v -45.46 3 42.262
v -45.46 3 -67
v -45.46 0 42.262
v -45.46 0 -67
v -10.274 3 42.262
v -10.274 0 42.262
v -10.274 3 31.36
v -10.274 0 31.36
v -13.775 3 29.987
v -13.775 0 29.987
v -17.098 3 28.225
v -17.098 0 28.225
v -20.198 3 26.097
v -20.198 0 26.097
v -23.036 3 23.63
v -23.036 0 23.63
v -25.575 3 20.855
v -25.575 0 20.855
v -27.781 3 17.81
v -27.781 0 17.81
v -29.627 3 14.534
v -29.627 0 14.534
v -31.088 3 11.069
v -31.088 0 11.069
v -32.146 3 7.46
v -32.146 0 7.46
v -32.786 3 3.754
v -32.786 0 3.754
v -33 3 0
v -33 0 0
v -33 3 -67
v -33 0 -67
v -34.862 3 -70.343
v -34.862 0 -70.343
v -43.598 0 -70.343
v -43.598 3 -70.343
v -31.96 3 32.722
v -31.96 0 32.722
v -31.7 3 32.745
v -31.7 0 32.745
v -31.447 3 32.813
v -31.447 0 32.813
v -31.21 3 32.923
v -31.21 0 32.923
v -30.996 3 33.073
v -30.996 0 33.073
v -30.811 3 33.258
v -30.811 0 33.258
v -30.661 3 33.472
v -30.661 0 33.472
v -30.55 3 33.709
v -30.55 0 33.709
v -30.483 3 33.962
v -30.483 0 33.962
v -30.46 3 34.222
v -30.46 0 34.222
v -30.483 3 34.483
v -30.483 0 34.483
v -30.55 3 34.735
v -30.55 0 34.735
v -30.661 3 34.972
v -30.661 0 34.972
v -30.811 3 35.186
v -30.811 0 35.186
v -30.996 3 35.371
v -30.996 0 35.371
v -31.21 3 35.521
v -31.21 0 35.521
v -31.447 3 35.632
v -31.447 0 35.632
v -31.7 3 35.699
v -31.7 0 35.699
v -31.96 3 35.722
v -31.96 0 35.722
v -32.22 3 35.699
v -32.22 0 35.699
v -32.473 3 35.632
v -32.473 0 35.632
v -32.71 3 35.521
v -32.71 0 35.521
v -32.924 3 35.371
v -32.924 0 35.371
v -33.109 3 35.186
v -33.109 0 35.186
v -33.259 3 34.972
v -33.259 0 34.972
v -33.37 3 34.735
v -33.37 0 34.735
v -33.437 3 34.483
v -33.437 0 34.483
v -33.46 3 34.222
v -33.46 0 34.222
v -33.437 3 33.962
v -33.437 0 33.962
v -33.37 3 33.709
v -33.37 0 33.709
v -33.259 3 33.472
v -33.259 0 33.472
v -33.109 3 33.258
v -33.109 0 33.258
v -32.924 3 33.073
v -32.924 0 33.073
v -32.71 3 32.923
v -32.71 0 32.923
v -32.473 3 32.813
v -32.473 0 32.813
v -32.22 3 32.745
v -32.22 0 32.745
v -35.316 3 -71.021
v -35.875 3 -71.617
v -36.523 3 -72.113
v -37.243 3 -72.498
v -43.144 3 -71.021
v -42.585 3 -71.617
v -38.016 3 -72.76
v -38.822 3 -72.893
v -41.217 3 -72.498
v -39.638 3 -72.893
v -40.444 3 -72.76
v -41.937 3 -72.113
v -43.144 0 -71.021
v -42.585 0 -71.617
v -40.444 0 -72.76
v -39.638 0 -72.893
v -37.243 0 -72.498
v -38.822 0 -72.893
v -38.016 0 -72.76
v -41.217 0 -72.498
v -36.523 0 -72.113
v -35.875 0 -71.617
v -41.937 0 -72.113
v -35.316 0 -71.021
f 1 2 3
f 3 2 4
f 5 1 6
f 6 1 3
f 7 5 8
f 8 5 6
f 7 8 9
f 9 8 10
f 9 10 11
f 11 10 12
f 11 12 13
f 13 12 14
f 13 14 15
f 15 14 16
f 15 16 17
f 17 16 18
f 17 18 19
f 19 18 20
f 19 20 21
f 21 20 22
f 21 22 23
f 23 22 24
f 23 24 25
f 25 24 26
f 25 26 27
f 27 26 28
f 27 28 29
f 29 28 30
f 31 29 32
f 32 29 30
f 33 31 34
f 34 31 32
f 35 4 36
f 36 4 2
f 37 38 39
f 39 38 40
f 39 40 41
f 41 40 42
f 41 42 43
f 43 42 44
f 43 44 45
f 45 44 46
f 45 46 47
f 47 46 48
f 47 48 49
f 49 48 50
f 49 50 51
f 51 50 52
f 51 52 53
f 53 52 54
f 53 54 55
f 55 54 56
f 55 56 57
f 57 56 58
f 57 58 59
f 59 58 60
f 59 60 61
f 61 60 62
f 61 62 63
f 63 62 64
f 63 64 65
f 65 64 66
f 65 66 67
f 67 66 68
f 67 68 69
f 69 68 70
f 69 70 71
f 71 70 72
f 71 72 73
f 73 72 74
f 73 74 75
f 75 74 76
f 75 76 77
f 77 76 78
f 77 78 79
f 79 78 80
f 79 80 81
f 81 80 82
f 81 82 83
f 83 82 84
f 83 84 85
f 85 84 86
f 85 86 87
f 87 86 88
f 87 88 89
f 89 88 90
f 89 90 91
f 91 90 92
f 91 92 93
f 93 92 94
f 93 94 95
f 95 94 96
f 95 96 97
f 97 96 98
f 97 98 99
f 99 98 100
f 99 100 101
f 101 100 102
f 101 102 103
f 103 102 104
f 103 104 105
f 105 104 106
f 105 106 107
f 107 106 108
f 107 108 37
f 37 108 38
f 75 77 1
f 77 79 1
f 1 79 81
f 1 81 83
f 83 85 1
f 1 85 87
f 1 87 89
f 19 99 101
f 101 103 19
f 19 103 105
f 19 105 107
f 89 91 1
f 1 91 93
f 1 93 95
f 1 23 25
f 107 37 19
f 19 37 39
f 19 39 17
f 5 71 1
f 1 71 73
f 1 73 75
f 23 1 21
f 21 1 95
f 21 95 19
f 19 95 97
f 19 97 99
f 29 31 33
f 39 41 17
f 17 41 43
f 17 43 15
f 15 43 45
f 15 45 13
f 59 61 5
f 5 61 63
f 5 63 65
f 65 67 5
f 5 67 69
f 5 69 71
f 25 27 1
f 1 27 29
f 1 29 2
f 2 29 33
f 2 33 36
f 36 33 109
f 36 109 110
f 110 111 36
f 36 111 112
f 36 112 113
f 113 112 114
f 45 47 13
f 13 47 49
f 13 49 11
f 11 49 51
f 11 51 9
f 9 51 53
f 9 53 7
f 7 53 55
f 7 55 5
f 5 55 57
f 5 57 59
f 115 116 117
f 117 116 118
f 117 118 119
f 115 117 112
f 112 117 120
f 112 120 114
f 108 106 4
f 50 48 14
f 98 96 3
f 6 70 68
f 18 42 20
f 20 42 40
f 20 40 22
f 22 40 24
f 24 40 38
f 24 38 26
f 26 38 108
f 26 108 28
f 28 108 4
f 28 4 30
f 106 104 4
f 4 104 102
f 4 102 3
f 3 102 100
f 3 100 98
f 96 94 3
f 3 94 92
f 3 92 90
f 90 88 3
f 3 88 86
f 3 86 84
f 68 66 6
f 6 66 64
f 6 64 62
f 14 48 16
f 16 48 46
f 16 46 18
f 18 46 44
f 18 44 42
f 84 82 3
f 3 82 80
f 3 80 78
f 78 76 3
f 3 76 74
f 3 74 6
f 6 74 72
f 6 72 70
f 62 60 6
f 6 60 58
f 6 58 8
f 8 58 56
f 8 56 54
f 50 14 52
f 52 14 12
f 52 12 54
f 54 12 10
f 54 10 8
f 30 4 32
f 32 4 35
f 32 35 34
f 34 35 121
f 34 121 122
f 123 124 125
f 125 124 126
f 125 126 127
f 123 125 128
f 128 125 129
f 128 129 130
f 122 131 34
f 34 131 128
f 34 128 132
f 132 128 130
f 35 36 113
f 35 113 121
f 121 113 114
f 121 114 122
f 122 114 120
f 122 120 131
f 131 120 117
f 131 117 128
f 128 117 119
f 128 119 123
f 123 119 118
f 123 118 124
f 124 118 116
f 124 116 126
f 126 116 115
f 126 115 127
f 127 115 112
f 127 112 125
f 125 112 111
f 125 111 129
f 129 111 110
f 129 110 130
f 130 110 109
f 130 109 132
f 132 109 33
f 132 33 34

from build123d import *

# Parameters (mm, degrees)
SKETCH_1_R      = 1.5
EXTRUDE_1_DEPTH = 3
FILLET_4_R      = 5


with BuildPart() as part:
    # 草图1 → 凸台-拉伸1 (new body)
    with BuildSketch(Plane(origin=(0, 0, 0), x_dir=(1, 0, 0), z_dir=(0, 1, 0))):
        with BuildLine():
            Line((-33, 0), (-33, 67))
            Line((-33, 67), (-39.23, 78.185494034))
            Line((-39.23, 78.185494034), (-45.46, 67))
            Line((-45.46, 67), (-45.46, -42.262061372))
            Line((-45.46, -42.262061372), (-10.274300832, -42.262061372))
            Line((-10.274300832, -42.262061372), (-10.274300832, -31.359826887))
            ThreePointArc((-10.274300832, -31.359826887), (-26.721264261, -19.364246339), (-33, 0))
        make_face()
        with Locations(Location((-31.96, -34.222061372, 0), (0, 0, 270))):
            Circle(SKETCH_1_R, mode=Mode.SUBTRACT)
    extrude(amount=EXTRUDE_1_DEPTH)

    # 圆角4
    fillet_4_edges = [part.edges().sort_by_distance(p)[0] for p in [
        (-39.23, 1.5, -78.185494034),
    ]]
    fillet(fillet_4_edges, radius=FILLET_4_R)


solid = part.part
